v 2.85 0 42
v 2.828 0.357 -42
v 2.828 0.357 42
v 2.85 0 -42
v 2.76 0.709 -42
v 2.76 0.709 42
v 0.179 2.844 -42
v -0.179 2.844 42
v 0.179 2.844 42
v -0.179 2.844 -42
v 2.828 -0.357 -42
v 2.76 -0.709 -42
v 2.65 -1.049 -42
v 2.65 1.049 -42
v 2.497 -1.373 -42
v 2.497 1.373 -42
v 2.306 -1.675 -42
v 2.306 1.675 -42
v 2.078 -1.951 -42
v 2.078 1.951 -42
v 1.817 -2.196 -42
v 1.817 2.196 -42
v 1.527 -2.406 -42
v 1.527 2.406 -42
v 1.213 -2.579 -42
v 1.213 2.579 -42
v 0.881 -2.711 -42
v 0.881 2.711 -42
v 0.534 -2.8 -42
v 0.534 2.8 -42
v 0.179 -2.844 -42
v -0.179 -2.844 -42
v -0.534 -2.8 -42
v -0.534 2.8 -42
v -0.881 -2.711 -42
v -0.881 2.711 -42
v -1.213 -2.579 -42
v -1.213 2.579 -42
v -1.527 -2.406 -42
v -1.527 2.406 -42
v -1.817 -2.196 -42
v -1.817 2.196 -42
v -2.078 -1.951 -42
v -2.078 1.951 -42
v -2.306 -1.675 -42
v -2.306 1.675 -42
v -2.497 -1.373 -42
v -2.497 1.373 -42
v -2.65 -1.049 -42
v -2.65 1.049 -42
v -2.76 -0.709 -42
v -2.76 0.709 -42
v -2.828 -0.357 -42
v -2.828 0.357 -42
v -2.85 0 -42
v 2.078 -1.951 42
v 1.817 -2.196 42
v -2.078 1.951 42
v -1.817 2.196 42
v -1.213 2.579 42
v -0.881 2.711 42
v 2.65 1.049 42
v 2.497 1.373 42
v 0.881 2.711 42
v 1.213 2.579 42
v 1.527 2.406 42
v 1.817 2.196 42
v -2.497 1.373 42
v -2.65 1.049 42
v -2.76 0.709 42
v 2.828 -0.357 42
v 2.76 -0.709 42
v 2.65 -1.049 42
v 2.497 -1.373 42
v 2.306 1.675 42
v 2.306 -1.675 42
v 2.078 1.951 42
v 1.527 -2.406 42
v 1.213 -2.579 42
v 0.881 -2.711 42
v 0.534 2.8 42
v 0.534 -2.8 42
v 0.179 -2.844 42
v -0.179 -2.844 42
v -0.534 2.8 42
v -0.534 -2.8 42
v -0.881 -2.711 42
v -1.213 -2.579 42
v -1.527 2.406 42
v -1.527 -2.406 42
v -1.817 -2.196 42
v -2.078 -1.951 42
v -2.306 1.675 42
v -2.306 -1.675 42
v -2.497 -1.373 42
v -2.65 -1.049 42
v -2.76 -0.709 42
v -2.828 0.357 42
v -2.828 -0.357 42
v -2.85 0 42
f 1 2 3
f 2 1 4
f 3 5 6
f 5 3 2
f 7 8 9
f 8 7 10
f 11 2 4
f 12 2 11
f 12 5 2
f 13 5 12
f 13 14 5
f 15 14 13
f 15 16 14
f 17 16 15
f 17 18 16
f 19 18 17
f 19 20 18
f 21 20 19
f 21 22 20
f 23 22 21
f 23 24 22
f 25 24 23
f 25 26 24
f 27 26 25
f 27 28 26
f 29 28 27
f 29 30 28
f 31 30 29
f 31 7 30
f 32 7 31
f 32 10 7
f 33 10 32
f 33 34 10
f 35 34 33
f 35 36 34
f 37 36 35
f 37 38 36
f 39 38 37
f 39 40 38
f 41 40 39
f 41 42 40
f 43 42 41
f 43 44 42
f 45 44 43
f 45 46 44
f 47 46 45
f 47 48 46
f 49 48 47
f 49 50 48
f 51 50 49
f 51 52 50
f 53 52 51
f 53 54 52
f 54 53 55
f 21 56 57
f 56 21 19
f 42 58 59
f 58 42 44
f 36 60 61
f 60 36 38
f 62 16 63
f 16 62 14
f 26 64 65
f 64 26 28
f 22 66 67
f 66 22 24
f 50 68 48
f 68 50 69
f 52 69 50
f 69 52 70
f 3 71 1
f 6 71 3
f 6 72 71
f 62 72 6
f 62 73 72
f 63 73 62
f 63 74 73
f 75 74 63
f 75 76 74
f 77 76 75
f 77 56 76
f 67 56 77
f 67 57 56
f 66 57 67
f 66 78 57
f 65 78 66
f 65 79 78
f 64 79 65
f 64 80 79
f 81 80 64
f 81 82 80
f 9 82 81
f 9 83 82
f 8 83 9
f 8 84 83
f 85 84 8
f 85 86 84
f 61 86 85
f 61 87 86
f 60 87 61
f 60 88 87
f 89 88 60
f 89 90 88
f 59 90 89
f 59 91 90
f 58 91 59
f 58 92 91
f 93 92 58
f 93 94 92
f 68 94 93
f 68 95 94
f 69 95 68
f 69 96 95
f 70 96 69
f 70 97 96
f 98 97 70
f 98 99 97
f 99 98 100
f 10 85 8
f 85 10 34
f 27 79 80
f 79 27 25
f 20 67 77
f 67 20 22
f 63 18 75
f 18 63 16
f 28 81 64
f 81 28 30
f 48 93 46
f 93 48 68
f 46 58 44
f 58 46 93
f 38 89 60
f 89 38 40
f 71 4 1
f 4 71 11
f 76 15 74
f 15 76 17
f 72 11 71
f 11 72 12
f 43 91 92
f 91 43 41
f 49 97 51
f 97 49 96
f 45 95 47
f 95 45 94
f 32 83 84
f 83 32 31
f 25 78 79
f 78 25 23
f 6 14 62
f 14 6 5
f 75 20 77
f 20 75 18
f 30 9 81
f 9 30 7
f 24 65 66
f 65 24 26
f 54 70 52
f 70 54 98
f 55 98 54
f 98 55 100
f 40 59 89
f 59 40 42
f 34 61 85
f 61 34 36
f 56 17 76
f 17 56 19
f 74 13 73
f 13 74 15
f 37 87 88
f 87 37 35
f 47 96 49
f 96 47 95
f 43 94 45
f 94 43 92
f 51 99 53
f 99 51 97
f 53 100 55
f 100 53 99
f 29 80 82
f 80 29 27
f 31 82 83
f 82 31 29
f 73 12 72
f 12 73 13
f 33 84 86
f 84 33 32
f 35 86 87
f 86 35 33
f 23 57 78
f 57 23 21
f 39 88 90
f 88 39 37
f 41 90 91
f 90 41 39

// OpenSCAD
$fn = 50;


difference() {
	union() {
		translate(v = [0, 0, -42.0000000000]) {
			cylinder(h = 84, r = 2.8500000000);
		}
	}
	union() {
		translate(v = [0, 0, -100.0000000000]) {
			cylinder(h = 200, r = 0);
		}
	}
}
